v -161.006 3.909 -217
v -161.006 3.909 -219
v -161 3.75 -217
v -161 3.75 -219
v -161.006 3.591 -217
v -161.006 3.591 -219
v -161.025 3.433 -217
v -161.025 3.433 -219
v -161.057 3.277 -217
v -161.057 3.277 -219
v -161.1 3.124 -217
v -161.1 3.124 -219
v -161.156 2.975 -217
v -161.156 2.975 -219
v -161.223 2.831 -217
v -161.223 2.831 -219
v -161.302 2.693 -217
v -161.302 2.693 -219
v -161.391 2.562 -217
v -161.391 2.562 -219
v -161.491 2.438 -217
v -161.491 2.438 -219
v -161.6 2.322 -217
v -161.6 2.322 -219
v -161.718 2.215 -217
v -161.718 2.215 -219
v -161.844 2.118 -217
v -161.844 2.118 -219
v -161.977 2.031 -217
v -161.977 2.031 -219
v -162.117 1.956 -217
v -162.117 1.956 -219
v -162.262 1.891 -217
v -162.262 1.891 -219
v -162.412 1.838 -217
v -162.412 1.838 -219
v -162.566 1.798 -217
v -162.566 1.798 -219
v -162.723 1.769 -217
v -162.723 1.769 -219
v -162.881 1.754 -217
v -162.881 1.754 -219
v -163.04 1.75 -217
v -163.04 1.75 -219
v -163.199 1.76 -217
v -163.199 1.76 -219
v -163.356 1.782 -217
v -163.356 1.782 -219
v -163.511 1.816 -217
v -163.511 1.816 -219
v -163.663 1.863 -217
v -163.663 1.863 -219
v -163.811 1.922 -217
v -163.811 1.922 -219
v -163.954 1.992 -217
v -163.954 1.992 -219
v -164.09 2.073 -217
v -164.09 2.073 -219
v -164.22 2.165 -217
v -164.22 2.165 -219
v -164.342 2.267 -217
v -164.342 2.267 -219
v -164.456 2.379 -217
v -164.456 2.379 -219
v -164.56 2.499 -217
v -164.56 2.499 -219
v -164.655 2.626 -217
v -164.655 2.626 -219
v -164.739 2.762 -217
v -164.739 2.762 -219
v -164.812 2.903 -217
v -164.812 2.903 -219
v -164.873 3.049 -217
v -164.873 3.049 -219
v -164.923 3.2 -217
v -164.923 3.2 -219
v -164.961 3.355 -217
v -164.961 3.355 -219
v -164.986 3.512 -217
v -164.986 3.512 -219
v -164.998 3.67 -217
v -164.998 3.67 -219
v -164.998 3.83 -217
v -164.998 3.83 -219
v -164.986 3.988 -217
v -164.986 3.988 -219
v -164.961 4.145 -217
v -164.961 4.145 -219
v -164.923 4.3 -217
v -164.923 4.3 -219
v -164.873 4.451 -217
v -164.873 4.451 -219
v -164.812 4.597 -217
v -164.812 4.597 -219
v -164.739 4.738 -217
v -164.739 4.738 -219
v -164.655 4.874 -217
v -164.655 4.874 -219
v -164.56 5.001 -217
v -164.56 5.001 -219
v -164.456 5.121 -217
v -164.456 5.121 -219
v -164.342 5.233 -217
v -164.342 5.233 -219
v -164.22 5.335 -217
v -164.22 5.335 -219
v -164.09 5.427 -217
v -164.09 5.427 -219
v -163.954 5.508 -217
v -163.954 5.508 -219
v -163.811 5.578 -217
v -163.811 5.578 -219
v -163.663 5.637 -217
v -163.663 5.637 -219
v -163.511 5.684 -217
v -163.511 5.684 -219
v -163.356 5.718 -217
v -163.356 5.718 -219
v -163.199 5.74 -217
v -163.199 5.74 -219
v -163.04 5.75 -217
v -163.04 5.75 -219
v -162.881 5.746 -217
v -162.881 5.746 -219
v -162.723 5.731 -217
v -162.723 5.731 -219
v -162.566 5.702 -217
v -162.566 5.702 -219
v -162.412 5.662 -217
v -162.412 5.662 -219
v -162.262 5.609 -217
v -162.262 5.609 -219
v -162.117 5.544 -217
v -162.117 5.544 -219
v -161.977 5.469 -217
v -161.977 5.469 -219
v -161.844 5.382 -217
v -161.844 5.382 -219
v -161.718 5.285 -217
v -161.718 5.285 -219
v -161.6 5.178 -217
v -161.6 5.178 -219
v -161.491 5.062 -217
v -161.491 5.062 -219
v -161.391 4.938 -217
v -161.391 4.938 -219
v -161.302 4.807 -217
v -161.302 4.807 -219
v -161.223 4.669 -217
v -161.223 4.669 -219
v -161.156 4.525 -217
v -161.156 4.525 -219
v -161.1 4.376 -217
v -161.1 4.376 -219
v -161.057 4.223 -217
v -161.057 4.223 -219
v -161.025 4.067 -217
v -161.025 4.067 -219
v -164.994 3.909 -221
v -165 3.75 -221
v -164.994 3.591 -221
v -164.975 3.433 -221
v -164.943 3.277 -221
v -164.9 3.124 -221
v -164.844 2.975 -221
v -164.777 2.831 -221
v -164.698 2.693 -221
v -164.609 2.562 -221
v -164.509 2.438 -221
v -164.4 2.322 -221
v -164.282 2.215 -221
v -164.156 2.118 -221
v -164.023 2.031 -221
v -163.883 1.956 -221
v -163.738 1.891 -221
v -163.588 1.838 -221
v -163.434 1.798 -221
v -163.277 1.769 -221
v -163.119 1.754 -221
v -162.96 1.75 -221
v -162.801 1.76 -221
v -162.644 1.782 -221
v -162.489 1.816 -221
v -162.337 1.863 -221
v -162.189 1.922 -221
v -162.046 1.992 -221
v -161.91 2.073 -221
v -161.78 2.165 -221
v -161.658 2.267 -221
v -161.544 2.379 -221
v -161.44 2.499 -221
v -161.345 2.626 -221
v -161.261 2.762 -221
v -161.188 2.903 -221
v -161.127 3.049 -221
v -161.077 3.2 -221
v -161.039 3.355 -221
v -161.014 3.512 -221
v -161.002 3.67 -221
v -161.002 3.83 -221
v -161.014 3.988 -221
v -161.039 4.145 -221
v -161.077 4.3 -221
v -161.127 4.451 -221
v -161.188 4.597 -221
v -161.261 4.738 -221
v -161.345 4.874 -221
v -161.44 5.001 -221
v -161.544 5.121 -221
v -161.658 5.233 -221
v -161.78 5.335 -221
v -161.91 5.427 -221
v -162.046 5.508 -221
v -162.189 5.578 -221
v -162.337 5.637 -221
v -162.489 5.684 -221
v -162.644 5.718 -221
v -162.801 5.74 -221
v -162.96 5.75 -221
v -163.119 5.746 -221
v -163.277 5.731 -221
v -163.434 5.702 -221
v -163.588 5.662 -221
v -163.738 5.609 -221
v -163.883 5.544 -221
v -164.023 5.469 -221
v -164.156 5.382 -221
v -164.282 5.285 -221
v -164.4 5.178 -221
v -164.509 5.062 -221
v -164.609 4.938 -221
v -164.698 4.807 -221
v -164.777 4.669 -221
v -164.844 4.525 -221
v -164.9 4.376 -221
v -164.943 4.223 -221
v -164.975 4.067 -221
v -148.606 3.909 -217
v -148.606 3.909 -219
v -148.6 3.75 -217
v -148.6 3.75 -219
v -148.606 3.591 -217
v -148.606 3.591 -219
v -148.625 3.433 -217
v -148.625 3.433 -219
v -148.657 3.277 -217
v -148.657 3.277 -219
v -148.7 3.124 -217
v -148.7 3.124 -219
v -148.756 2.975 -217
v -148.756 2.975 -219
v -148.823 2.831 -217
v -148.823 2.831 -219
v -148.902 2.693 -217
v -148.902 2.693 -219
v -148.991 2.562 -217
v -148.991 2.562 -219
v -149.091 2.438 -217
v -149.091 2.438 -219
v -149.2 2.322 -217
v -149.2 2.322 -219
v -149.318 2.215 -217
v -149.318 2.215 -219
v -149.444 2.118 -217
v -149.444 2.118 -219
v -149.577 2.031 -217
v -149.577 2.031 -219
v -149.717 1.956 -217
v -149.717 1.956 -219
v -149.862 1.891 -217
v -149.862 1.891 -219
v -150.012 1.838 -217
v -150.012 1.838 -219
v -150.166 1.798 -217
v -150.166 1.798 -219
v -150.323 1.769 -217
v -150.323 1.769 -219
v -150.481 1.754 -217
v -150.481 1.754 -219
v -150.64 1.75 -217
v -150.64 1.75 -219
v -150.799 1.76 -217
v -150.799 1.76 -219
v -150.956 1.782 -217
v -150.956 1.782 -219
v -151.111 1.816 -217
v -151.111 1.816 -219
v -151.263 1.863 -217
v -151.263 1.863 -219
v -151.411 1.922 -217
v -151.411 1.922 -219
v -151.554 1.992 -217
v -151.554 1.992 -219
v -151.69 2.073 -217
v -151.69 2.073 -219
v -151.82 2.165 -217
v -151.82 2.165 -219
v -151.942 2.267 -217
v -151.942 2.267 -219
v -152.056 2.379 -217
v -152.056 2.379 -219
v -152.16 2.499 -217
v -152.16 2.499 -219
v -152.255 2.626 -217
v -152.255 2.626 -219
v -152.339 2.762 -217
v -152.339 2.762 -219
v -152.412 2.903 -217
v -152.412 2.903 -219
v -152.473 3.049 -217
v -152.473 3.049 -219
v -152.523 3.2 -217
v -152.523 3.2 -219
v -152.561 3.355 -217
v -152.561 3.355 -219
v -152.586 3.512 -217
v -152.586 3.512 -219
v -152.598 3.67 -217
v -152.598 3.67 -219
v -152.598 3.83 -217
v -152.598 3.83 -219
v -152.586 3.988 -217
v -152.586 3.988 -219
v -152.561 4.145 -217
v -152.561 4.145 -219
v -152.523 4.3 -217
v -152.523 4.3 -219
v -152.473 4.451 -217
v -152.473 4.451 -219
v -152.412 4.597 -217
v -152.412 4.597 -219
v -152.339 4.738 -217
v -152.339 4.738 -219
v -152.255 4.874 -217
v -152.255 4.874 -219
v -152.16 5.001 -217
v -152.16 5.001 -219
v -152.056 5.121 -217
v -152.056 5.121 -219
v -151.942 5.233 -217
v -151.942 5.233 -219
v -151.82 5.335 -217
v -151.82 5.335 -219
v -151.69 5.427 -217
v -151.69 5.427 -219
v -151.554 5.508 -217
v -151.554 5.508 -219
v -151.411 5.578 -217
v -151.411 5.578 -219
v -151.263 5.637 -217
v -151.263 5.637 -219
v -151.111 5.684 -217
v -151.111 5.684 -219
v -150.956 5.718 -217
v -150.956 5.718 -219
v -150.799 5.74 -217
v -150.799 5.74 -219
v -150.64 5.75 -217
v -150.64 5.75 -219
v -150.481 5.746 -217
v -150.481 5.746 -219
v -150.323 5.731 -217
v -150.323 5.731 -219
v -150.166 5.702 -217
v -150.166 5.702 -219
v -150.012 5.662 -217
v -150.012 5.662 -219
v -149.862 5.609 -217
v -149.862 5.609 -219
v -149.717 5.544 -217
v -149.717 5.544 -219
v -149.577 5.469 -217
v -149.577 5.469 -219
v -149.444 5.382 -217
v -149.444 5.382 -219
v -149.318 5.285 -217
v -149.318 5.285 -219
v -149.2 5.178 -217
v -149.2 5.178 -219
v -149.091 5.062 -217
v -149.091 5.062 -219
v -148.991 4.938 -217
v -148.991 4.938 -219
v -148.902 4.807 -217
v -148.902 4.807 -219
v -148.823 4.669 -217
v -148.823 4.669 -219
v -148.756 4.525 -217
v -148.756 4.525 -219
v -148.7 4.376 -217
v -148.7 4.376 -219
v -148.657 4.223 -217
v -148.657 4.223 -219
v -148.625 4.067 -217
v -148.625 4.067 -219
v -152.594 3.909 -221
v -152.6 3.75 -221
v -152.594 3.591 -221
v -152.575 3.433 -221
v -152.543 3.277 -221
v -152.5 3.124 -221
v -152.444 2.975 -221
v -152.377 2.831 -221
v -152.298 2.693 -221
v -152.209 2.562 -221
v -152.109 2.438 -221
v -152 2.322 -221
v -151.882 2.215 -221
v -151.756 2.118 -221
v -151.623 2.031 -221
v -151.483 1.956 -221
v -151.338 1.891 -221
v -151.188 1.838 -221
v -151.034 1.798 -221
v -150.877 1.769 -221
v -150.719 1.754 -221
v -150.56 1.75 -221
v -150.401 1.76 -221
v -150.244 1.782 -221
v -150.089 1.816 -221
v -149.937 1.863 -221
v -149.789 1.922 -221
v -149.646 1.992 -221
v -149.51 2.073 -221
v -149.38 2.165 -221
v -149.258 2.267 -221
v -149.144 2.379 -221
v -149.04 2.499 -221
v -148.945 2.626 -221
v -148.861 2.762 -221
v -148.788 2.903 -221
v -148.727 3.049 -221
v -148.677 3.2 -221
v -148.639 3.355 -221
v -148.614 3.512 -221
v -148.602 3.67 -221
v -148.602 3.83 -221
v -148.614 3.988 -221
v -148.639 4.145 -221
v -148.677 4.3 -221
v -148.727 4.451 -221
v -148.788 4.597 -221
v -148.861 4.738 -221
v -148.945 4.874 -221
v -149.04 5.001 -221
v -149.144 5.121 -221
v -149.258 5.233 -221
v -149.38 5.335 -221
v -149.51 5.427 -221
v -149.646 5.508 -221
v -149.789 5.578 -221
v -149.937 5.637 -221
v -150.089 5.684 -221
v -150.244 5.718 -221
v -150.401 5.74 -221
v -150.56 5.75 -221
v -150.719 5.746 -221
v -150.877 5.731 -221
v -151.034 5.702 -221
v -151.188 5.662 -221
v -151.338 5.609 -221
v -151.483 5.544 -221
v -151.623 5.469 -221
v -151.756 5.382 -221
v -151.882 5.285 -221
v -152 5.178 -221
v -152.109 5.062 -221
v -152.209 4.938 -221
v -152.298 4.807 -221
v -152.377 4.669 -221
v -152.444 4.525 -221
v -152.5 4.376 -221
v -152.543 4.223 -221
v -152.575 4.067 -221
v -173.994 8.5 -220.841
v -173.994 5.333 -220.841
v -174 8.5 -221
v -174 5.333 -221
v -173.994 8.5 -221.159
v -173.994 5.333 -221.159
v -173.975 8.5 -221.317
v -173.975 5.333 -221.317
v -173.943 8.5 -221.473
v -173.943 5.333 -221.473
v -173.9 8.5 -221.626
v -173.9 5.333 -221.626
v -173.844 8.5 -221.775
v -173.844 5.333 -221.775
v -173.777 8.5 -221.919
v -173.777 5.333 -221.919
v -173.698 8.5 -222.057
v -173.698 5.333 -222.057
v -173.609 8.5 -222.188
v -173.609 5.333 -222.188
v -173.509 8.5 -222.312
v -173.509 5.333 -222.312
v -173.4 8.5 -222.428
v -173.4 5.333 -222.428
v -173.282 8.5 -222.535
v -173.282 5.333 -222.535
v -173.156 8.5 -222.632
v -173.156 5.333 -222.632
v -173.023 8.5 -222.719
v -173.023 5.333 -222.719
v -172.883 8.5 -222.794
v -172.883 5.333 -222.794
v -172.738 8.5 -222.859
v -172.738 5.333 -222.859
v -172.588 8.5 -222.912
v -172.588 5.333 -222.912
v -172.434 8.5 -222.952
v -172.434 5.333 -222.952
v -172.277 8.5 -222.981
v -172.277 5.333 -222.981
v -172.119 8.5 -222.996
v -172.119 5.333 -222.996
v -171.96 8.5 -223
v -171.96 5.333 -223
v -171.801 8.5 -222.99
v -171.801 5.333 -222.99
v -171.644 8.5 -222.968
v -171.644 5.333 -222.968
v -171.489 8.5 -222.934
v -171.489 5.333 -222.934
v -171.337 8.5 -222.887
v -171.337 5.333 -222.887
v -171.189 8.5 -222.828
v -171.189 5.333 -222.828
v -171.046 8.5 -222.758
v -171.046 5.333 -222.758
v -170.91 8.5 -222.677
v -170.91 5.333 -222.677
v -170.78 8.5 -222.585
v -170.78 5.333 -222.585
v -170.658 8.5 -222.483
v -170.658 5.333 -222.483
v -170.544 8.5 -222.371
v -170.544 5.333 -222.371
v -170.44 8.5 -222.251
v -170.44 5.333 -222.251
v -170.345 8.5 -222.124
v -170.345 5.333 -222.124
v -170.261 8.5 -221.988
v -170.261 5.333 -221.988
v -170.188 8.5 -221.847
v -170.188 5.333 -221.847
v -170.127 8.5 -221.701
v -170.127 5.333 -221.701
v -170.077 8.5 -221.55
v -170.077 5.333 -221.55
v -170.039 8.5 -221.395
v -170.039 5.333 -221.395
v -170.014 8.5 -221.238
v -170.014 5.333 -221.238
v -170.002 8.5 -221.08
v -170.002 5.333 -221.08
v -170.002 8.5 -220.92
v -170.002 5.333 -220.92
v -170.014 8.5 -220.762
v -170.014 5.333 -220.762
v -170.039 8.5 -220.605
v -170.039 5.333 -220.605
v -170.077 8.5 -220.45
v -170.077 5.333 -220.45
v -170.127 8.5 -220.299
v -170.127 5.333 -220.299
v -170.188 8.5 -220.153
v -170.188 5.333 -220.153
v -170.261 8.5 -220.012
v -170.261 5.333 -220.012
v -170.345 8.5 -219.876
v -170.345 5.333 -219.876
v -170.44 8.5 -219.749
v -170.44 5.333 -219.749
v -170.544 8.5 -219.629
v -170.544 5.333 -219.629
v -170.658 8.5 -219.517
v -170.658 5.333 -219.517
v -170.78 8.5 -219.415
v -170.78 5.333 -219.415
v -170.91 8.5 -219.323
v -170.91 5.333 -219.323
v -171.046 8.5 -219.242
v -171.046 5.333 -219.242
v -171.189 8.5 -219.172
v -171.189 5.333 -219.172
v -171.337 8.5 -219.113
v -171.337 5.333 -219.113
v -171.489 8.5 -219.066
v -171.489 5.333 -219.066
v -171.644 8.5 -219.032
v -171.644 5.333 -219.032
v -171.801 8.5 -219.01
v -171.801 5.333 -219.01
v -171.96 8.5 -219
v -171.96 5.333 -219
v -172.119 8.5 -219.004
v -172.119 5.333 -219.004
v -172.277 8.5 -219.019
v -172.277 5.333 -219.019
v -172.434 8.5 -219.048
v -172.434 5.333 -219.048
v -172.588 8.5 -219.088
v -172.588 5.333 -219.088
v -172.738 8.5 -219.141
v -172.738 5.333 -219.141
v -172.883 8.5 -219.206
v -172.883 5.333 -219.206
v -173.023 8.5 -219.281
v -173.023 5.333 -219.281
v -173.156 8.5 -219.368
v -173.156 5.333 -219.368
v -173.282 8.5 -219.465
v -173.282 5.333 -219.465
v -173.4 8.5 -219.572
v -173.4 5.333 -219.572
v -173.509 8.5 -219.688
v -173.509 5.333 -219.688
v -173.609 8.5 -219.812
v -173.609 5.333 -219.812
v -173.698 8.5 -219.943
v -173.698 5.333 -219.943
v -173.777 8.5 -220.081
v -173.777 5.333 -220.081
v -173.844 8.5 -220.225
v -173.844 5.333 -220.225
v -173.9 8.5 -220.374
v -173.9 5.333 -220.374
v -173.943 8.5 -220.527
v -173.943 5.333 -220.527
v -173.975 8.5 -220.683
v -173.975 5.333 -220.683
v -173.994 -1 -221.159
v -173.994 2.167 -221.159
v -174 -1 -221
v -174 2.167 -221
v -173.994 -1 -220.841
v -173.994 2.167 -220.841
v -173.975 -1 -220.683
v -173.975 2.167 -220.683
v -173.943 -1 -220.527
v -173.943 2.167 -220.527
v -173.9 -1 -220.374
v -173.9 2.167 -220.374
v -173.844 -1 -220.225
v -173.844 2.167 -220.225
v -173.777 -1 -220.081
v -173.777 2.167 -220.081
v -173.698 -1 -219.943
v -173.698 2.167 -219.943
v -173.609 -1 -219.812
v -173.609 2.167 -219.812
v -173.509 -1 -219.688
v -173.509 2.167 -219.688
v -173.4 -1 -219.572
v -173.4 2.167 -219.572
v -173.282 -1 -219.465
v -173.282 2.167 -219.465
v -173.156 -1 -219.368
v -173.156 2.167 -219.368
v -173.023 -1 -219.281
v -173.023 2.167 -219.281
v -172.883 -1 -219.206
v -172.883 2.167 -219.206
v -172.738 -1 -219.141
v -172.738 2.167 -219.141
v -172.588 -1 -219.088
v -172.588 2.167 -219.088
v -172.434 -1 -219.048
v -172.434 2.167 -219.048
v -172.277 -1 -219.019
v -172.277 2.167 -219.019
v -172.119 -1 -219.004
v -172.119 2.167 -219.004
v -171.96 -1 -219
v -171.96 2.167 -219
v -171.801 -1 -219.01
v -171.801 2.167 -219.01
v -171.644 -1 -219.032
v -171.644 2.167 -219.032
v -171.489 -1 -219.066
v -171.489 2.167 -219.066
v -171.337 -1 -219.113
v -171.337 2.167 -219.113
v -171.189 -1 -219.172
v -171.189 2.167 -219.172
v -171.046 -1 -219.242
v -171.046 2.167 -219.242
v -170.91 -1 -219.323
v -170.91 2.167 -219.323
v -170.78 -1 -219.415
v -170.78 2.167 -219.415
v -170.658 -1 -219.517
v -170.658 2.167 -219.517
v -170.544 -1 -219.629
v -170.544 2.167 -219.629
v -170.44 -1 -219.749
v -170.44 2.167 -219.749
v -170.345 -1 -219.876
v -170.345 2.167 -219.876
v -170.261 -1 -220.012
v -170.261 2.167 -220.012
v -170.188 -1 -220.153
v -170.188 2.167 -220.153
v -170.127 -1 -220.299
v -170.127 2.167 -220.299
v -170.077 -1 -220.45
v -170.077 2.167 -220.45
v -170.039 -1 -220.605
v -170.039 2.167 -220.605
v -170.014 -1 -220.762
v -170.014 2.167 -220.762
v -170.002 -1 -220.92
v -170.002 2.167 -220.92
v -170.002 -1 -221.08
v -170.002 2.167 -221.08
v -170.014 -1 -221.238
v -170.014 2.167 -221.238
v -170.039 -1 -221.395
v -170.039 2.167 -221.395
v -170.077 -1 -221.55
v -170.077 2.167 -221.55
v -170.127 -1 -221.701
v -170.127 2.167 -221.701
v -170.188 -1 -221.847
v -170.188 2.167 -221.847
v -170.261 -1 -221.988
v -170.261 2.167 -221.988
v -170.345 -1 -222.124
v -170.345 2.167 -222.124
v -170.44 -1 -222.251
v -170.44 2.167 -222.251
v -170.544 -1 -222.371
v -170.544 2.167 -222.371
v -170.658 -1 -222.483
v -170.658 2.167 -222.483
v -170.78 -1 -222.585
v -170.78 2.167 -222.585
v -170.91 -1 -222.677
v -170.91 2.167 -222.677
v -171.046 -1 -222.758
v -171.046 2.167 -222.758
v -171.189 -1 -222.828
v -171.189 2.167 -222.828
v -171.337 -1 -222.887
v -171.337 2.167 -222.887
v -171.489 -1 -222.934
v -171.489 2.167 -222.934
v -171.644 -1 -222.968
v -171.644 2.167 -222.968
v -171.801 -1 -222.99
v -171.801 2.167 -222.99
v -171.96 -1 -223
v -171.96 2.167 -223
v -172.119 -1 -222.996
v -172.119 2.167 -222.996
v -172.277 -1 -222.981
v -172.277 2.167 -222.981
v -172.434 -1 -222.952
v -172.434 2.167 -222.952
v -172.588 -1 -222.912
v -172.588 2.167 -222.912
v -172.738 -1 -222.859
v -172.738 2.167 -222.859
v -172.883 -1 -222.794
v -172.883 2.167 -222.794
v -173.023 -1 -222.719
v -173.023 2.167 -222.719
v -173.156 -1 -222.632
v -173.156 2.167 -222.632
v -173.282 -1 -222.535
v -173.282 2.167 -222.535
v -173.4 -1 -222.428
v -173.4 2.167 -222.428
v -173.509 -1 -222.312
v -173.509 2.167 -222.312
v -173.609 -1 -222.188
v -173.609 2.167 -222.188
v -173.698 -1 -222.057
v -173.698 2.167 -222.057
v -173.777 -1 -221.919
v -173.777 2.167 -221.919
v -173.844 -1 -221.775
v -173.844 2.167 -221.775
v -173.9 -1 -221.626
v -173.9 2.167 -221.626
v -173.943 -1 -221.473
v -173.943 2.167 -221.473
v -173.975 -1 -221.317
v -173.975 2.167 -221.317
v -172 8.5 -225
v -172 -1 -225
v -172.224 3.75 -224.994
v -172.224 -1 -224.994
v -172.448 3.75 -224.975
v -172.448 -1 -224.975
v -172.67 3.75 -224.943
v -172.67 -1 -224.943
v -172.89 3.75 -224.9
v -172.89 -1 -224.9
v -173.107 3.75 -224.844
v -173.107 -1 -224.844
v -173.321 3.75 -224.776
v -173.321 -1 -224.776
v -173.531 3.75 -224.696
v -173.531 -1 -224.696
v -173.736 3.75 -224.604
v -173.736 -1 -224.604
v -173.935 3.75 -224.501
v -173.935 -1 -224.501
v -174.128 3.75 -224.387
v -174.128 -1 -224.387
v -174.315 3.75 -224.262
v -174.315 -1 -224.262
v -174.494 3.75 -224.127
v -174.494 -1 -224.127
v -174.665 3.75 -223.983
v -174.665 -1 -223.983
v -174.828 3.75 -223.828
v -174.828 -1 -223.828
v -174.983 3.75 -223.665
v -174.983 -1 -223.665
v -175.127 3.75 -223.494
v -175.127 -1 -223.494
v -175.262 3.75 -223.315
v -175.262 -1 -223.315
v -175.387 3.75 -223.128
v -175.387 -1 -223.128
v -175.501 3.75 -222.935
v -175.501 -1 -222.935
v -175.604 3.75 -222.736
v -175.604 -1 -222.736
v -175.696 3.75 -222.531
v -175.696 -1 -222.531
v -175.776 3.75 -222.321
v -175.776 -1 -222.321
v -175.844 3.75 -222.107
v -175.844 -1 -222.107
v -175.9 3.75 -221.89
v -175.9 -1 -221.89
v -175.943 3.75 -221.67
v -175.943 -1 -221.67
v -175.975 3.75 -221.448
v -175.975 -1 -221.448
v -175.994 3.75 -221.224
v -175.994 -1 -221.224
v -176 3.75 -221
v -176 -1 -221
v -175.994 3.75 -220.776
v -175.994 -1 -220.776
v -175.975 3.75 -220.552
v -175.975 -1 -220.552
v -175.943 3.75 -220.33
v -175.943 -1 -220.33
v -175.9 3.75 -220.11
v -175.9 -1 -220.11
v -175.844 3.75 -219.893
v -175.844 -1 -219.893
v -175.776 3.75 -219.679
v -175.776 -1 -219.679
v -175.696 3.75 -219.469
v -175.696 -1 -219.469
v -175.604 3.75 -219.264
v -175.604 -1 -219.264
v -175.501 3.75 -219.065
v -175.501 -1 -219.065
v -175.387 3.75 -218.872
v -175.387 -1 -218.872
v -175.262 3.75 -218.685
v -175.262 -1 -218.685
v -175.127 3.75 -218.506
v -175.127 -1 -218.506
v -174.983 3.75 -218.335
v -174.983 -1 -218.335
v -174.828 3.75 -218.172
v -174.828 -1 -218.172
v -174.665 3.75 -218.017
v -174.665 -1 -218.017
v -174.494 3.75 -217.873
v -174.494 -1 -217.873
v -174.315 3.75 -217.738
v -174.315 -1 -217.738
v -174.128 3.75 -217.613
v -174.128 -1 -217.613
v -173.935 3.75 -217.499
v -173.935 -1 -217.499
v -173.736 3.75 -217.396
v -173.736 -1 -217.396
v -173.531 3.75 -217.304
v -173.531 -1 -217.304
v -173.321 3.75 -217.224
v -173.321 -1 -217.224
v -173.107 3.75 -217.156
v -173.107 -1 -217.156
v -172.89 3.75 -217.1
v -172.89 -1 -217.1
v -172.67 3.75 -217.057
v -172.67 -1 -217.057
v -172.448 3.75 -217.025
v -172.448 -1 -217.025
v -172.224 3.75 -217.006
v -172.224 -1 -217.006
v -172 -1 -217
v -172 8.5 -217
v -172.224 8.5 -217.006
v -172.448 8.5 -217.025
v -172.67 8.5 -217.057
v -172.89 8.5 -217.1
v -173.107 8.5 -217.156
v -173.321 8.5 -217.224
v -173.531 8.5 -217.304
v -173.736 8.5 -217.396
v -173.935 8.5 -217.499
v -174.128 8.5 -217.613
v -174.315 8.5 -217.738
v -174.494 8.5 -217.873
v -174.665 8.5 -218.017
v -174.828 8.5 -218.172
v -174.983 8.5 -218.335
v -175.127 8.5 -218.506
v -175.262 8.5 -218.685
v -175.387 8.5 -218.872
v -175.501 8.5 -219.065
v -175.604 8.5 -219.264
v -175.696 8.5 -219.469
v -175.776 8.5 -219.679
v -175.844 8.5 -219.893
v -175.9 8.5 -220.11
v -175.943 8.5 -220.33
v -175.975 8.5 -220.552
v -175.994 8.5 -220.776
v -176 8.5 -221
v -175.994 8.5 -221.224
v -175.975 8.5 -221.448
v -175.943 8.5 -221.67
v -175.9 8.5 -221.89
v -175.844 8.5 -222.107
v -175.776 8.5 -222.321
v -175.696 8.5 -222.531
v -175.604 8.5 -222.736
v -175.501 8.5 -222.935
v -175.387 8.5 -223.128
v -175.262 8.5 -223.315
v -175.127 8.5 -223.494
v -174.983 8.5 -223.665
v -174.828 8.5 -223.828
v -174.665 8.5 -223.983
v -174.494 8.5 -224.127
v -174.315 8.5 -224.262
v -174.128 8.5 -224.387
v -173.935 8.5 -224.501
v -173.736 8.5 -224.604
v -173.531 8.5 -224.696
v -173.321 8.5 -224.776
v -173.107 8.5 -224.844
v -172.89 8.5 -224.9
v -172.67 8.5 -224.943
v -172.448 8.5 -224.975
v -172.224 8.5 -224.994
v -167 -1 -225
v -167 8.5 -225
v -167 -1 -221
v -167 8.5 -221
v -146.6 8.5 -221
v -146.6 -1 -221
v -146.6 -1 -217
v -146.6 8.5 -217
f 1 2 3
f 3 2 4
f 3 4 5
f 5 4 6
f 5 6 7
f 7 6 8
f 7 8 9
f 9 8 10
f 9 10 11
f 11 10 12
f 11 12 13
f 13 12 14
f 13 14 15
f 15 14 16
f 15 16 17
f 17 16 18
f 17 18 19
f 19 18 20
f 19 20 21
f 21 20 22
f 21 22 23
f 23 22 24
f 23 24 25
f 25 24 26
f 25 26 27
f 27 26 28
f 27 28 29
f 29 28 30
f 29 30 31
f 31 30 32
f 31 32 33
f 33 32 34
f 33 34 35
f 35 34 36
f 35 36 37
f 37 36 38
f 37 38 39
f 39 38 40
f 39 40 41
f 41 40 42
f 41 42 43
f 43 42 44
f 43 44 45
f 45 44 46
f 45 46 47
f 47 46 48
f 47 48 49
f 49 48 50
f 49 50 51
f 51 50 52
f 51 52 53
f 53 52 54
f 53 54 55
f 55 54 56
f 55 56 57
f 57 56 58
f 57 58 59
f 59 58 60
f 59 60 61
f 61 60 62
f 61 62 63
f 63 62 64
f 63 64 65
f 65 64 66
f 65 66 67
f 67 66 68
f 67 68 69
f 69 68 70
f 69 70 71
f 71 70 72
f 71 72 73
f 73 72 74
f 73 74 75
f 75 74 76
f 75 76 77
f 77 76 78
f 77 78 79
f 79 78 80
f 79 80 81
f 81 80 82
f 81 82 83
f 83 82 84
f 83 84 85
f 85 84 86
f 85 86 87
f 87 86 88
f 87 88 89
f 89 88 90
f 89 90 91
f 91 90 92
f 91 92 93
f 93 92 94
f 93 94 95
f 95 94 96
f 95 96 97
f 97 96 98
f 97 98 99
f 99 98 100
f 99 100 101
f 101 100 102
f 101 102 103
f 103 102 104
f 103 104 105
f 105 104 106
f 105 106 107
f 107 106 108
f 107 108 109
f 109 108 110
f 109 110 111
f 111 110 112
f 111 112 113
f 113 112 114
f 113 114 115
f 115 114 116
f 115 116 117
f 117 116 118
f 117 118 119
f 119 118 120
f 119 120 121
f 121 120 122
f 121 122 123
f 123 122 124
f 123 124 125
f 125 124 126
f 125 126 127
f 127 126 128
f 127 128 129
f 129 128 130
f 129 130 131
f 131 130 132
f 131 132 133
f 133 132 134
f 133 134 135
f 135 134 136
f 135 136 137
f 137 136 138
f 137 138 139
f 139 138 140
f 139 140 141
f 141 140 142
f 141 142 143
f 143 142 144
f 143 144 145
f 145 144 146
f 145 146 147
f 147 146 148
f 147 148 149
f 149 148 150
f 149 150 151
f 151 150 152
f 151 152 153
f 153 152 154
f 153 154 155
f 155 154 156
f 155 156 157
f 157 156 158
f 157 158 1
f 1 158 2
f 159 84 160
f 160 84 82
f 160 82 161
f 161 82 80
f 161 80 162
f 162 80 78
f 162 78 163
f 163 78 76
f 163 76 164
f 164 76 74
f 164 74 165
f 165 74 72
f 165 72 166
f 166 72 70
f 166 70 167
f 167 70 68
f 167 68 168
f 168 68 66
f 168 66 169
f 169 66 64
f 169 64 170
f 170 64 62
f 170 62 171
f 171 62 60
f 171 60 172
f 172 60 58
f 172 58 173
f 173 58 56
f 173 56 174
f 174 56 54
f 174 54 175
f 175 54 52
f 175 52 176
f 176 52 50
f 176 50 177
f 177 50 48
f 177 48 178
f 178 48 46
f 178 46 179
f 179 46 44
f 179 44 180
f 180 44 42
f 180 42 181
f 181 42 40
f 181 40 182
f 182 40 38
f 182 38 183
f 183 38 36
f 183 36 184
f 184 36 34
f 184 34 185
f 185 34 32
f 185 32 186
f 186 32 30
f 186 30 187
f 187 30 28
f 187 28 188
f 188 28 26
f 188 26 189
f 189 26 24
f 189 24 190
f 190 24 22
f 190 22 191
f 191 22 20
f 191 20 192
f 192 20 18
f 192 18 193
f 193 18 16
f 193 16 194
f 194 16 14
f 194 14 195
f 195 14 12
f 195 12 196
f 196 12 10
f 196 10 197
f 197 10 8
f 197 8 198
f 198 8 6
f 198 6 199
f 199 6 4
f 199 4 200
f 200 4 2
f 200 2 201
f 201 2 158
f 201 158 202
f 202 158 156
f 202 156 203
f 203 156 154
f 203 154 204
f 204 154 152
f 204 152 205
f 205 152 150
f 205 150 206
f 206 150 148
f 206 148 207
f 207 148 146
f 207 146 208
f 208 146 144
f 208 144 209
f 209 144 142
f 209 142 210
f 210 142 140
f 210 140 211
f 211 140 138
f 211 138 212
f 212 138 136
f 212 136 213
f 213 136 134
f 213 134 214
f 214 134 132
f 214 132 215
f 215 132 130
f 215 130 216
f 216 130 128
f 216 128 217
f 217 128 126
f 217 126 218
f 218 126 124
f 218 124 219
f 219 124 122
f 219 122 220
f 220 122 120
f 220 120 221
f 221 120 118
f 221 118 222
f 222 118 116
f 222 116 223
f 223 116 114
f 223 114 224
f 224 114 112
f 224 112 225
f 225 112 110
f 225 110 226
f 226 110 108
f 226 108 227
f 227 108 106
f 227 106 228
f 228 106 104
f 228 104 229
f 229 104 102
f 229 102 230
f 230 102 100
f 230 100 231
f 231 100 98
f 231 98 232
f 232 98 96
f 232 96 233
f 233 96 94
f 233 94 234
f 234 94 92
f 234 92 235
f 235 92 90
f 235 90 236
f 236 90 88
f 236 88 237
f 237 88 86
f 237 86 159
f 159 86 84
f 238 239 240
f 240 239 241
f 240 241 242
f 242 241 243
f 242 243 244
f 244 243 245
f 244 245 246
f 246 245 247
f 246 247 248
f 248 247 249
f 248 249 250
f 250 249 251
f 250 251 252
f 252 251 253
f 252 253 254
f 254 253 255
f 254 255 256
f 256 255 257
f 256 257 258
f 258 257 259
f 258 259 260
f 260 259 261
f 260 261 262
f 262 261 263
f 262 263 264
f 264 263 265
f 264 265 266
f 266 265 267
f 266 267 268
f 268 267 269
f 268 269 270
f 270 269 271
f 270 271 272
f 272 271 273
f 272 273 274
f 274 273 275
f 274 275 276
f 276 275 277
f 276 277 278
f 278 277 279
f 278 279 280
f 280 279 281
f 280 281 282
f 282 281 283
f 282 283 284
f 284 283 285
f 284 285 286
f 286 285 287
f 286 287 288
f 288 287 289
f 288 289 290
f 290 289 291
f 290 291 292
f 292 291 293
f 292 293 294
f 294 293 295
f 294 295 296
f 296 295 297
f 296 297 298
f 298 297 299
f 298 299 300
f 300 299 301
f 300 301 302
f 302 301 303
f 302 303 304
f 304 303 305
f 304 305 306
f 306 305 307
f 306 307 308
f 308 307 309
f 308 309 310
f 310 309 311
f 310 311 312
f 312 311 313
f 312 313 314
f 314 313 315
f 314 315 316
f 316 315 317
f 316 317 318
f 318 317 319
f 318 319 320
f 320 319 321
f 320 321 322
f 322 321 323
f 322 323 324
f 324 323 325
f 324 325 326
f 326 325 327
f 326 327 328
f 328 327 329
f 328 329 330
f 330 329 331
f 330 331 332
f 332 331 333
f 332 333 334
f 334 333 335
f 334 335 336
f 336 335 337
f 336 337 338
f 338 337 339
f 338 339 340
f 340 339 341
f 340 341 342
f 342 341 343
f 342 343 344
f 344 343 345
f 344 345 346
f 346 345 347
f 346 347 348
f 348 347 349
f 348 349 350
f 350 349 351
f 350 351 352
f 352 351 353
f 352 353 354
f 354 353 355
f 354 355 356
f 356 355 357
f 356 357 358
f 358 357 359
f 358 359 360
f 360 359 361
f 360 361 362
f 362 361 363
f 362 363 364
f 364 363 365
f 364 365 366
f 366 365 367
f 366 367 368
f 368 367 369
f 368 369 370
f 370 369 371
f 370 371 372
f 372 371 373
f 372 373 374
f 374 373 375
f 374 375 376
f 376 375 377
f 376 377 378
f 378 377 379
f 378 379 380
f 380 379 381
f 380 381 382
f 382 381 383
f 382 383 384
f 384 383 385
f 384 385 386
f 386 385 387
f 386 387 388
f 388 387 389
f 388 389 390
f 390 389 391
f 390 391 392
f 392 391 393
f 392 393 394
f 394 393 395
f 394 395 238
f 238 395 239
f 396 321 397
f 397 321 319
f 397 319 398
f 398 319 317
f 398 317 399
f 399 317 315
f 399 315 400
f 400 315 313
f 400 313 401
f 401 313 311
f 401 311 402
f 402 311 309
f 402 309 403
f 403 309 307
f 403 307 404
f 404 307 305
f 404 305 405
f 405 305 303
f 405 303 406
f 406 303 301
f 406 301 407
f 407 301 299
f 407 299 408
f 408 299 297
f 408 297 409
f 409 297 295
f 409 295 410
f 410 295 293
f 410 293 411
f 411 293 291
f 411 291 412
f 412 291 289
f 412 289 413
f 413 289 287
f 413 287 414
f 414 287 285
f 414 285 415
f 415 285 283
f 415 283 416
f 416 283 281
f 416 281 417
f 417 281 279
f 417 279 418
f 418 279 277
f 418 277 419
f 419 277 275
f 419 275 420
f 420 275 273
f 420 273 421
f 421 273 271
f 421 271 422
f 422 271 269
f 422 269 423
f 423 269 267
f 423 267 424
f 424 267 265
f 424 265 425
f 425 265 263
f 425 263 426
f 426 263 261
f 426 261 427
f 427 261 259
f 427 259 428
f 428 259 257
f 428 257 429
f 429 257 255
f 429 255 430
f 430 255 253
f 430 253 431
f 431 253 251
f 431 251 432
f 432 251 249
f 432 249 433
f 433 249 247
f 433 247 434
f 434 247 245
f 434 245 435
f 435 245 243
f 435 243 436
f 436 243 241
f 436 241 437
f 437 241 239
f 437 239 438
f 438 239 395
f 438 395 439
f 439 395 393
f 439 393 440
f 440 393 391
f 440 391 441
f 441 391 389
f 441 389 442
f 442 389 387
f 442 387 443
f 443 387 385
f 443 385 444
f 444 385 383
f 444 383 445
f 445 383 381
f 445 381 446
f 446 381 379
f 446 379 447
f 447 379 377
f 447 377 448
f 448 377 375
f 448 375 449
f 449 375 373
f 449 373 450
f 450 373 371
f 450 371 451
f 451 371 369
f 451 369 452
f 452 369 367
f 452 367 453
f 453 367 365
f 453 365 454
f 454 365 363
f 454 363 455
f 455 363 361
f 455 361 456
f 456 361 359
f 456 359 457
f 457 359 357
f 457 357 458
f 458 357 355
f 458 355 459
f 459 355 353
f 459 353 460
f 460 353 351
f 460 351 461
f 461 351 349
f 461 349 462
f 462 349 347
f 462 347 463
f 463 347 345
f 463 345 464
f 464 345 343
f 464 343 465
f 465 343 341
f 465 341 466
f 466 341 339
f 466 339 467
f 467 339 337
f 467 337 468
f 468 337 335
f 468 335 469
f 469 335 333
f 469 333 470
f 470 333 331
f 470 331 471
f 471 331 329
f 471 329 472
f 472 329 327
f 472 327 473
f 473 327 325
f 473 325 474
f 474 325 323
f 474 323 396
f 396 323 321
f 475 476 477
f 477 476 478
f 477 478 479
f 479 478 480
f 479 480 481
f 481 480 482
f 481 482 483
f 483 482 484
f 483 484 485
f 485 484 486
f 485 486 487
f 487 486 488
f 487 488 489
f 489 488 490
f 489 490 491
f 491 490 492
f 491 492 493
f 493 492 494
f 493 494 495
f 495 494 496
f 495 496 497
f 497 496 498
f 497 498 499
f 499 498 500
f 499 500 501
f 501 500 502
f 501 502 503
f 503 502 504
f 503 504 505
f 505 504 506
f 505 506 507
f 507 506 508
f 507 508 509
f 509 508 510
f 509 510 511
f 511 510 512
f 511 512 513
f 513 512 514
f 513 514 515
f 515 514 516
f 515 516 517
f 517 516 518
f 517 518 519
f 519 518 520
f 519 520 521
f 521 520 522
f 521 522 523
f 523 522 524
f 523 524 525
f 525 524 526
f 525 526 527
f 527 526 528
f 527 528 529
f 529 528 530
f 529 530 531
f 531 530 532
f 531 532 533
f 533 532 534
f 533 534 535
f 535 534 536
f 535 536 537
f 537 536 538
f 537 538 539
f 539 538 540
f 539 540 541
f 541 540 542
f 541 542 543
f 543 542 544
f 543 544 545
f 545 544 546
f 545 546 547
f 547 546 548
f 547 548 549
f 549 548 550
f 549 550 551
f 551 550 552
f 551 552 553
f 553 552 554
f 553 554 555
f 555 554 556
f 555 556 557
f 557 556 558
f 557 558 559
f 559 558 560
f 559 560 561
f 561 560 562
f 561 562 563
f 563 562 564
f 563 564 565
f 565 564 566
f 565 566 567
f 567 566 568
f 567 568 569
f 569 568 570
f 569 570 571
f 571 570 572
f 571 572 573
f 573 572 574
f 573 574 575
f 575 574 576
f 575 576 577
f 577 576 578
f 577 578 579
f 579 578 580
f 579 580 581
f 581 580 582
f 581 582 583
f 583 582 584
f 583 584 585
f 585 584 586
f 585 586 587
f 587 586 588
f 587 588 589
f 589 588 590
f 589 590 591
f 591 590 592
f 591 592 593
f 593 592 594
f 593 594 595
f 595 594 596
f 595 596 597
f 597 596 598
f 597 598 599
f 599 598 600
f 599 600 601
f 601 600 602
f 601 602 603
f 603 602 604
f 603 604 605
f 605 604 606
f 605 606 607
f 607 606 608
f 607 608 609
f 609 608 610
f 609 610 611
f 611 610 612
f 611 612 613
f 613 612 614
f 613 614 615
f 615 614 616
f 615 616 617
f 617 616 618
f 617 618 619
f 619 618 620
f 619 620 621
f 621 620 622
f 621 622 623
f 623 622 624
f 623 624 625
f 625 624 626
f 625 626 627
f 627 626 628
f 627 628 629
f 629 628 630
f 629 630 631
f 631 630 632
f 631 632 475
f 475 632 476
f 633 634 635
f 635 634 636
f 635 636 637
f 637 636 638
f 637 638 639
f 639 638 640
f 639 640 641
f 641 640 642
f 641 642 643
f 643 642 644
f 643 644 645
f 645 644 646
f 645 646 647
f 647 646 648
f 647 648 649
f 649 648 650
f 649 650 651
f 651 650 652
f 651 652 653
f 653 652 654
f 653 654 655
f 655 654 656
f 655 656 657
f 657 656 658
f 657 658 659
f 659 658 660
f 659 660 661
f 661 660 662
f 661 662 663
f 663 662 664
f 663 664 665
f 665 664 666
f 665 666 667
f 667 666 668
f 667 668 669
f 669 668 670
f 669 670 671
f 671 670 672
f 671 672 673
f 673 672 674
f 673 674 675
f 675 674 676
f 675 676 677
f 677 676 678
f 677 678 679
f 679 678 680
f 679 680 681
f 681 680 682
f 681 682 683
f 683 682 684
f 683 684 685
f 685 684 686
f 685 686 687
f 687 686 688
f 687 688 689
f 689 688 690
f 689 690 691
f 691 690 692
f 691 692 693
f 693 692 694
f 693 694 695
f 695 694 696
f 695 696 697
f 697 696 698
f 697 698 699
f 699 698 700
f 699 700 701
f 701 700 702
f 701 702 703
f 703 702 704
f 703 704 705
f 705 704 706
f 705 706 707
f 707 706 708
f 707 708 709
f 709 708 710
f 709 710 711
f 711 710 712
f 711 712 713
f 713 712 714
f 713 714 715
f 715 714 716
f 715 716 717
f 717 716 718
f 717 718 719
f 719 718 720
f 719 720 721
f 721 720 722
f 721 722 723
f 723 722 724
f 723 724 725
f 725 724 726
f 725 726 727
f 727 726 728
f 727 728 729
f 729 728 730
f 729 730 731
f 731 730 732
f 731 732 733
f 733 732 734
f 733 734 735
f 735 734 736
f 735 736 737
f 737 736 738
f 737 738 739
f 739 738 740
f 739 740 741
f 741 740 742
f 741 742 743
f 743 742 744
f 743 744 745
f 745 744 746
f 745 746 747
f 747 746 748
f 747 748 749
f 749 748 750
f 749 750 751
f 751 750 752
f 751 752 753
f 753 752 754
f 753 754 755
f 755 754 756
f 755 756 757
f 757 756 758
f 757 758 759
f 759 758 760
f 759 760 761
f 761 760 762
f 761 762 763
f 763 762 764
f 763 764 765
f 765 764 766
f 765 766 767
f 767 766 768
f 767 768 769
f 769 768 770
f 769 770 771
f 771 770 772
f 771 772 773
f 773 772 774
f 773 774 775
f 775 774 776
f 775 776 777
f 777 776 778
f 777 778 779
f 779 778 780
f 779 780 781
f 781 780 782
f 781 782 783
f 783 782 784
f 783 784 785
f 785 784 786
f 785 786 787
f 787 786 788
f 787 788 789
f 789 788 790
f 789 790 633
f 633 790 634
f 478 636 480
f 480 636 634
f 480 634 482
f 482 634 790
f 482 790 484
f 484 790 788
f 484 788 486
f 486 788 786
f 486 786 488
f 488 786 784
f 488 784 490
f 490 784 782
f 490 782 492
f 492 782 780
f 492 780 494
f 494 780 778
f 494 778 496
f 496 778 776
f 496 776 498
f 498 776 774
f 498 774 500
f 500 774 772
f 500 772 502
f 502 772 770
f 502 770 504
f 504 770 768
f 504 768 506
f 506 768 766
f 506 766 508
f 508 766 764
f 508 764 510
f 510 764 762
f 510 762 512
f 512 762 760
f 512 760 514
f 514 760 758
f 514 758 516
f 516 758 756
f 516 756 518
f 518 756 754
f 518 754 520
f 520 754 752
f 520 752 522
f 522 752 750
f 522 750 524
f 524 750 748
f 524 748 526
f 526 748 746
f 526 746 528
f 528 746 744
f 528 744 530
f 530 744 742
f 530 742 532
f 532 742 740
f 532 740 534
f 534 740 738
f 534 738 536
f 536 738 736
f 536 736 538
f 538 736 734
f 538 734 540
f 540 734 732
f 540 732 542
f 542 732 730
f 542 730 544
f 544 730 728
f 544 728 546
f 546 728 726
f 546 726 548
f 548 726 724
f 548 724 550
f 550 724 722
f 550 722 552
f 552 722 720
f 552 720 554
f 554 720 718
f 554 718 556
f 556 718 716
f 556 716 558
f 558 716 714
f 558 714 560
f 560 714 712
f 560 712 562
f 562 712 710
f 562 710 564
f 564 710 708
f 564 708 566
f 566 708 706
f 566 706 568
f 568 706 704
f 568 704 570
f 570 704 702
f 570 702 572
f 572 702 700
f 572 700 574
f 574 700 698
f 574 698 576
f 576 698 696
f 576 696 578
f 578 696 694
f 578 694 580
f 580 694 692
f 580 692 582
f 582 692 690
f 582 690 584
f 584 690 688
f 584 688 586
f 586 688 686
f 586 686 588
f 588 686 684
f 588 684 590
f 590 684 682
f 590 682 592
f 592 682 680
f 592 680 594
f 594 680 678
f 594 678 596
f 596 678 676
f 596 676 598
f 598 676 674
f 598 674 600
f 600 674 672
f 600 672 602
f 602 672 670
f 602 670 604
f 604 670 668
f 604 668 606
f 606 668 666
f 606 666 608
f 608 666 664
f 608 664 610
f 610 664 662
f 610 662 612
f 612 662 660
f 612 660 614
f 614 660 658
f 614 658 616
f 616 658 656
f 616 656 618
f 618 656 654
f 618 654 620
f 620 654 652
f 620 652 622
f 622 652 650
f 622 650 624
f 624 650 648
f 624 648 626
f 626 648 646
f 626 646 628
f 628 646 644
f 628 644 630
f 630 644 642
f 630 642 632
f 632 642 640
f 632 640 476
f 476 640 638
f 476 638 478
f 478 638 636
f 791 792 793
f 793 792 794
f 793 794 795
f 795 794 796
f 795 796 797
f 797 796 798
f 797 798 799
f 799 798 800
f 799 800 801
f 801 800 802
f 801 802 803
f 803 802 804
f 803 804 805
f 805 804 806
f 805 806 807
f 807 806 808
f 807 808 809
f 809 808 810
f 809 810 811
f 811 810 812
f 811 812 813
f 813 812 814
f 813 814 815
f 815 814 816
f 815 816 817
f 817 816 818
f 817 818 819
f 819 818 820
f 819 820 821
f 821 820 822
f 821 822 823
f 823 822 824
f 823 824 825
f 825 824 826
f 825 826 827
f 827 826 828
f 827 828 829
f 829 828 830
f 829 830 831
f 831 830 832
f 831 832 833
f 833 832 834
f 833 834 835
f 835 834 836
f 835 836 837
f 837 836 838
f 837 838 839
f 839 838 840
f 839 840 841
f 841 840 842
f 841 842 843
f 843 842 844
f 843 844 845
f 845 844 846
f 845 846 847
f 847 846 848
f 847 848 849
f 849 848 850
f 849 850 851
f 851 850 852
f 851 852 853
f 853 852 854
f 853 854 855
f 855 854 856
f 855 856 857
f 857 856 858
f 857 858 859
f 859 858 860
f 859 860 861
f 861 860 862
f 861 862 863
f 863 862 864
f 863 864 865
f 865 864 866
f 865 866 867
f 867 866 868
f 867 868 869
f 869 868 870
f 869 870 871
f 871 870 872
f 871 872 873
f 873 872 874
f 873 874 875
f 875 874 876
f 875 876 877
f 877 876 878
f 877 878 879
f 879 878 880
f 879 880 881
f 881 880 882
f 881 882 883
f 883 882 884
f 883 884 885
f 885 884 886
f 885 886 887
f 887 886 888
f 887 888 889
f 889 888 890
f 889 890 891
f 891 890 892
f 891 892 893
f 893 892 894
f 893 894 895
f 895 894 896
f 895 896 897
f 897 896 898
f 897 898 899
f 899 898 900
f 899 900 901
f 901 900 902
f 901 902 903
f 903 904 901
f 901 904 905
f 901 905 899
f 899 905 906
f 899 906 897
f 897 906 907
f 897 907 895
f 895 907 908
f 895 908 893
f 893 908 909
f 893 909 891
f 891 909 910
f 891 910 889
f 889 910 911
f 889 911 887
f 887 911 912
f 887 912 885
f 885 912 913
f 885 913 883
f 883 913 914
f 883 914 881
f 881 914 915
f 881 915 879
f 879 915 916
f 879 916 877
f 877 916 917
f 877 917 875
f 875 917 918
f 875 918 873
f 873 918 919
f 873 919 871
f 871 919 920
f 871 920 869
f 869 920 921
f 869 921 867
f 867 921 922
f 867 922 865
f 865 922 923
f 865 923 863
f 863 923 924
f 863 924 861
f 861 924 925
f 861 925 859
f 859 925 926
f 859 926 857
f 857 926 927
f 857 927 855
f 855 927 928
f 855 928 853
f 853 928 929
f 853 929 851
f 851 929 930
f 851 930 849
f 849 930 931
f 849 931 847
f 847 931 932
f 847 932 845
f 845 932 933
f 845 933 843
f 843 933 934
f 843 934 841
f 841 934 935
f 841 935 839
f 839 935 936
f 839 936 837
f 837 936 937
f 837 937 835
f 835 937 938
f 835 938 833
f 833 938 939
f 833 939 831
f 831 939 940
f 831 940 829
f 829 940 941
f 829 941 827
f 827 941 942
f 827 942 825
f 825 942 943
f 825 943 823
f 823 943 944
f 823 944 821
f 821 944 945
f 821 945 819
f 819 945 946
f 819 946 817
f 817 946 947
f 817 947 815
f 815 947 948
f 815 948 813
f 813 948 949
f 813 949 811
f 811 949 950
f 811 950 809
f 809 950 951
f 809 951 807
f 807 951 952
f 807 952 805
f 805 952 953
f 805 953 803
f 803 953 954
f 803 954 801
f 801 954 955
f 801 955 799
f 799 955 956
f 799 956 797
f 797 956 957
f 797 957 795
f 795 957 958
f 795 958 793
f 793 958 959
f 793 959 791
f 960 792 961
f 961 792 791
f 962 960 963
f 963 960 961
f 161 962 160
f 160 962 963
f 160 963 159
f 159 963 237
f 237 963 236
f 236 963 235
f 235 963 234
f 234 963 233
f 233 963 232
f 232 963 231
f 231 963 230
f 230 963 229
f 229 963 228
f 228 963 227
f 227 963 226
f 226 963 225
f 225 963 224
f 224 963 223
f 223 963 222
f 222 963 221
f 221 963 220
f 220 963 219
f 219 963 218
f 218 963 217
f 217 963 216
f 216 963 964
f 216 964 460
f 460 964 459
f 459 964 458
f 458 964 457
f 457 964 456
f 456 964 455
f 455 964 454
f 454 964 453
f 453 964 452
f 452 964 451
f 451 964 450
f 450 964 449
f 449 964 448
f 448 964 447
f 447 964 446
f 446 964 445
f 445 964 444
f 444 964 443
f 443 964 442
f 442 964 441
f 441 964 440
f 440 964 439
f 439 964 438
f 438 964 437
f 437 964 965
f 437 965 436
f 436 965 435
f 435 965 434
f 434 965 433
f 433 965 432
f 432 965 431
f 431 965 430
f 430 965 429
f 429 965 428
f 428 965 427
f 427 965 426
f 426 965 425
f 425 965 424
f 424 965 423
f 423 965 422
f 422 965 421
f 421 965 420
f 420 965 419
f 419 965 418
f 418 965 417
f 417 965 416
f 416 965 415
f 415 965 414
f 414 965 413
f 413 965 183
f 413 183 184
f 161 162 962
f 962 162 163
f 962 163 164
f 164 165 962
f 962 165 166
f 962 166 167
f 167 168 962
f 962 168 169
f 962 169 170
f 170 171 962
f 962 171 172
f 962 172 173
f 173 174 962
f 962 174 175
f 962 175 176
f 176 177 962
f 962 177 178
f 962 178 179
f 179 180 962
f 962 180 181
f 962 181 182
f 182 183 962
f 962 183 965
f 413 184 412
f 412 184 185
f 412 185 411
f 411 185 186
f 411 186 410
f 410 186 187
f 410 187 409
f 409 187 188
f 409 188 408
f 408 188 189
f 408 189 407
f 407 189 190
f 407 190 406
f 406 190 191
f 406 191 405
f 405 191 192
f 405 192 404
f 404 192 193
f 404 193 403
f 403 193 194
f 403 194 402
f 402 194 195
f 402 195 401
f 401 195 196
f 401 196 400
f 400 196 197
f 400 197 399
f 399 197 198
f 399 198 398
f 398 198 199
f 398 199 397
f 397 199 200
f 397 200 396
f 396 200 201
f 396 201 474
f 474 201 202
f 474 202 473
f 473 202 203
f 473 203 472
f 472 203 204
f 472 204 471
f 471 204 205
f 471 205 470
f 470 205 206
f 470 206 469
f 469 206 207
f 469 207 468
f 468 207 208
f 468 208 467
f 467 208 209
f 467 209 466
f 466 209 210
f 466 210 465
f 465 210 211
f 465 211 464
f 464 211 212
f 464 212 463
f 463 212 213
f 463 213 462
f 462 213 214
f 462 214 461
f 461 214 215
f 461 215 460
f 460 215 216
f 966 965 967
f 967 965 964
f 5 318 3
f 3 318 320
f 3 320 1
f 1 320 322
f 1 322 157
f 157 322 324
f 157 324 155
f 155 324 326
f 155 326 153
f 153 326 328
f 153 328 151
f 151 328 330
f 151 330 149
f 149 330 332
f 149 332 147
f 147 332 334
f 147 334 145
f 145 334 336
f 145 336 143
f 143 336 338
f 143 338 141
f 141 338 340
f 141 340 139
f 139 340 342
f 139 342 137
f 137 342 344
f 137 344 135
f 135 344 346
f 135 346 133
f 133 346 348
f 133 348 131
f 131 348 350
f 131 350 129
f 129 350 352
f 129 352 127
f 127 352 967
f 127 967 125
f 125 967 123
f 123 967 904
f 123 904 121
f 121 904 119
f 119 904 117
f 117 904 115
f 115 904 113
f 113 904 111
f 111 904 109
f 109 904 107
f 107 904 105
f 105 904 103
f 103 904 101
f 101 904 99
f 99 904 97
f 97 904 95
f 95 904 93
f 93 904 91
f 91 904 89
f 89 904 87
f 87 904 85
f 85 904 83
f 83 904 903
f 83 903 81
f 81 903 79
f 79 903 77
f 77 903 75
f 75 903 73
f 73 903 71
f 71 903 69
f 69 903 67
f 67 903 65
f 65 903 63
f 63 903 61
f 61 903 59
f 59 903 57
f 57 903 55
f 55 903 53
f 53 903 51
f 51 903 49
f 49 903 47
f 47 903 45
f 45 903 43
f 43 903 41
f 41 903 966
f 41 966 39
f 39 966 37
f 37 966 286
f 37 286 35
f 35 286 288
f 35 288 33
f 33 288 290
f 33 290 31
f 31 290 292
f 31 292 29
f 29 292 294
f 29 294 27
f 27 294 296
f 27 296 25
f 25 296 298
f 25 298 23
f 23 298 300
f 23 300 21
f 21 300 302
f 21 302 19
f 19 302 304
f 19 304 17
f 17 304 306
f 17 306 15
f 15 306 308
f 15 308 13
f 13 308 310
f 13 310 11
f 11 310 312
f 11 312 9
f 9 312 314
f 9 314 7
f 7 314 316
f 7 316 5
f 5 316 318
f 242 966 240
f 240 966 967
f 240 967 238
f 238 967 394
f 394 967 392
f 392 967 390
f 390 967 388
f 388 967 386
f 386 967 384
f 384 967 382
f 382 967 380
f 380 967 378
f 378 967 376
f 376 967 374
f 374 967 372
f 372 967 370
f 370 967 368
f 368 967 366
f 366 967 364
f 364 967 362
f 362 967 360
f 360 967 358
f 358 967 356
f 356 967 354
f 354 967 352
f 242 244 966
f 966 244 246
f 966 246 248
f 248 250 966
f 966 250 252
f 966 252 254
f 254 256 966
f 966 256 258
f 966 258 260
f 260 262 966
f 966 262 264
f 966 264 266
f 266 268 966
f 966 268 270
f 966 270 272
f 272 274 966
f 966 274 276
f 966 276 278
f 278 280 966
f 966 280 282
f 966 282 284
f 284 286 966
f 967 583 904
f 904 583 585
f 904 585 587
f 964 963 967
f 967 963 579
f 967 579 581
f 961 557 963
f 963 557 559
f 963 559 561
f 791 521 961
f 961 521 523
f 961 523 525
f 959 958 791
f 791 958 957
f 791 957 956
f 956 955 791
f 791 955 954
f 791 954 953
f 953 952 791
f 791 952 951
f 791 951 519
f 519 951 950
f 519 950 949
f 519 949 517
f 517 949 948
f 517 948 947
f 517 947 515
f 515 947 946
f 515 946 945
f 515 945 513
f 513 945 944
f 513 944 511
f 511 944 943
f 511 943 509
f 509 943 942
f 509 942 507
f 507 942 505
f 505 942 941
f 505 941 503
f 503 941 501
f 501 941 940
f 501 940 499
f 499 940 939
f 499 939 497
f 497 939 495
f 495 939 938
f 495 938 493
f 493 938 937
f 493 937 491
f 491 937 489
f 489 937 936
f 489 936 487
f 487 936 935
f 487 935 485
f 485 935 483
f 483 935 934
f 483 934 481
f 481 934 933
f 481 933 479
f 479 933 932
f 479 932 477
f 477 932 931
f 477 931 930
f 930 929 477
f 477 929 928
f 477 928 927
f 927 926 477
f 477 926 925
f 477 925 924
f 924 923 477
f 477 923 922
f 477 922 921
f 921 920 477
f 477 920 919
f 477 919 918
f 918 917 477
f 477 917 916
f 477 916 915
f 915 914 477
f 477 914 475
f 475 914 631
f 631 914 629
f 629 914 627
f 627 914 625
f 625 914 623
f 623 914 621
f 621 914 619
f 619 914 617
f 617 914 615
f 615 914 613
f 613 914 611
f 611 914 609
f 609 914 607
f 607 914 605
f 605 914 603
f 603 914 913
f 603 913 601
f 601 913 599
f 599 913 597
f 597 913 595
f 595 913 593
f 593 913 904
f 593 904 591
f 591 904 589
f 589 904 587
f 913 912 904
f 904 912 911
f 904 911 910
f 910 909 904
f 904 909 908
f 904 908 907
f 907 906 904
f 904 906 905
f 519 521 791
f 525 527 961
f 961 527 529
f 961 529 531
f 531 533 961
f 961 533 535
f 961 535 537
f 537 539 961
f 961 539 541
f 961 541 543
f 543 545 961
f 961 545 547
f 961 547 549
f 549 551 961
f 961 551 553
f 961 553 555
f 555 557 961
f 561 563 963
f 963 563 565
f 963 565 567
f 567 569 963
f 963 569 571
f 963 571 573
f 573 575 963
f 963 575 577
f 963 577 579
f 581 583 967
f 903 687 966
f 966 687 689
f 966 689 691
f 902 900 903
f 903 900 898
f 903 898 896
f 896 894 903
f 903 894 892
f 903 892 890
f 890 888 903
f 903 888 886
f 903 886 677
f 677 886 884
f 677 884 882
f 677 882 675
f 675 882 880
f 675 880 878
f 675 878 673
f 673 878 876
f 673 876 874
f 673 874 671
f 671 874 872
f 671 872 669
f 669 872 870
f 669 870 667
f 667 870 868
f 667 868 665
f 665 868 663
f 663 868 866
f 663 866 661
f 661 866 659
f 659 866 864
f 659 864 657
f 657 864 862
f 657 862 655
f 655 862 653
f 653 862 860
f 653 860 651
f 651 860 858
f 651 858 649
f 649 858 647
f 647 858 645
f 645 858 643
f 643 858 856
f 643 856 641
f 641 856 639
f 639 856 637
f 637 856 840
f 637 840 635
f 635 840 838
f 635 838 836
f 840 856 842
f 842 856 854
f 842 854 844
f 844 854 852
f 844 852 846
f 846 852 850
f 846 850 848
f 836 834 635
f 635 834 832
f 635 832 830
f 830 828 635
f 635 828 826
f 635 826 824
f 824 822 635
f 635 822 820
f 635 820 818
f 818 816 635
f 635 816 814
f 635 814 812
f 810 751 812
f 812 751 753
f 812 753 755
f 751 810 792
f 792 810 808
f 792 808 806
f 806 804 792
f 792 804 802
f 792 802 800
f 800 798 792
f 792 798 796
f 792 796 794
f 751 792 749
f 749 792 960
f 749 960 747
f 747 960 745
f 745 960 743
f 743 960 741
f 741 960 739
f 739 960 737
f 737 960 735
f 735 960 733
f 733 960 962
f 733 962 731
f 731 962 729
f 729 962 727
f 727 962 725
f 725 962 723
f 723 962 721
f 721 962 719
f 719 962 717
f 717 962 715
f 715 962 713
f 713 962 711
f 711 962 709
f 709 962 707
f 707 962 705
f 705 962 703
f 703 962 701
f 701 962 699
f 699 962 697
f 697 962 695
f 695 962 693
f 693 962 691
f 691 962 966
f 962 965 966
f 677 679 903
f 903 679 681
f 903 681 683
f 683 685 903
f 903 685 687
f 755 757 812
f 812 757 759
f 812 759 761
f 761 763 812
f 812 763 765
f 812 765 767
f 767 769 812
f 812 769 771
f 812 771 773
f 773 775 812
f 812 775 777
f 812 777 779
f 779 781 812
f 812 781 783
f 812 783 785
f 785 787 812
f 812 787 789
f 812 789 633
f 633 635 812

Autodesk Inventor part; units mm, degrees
ref_plane "YZ Plane" through (0, 0, 0) normal (1, 0, 0) x (0, 1, 0)
ref_plane "XZ Plane" through (0, 0, 0) normal (0, 1, 0) x (-1, 0, 0)
ref_plane "XY Plane" through (0, 0, 0) normal (0, 0, 1) x (1, 0, 0)
ref_plane "Work Plane1" through (-181, -1, -216) normal (0, 1, 0) x (-1, 0, 0)
sketch "Sketch1" plane through (-181, -1, -216) normal (0, 1, 0) x (-1, 0, 0)
  circle A0 centre (-9, -5) radius 2 projected
  arc A1 (-18, -6.825) -> (-14.825, -10) centre (-14.825, -6.825) ccw projected
  line L0 (-3.175, -10) -> (-14.825, -10) projected
  arc A2 (-3.175, -10) -> (0, -6.825) centre (-3.175, -6.825) ccw projected
  line L1 (0, -3.175) -> (0, -6.825) projected
  arc A3 (3.175, 0) -> (0, -3.175) centre (3.175, -3.175) ccw projected
  line L2 (-21.175, 0) -> (3.175, 0) projected
  arc A4 (-18, -3.175) -> (-21.175, 0) centre (-21.175, -3.175) ccw projected
  line L3 (-18, -3.175) -> (-18, -6.825) projected
  circle A5 centre (-9, -5) radius 5
  circle A6 centre (-9, -5) radius 4
  line L4 (-9, -1) -> (-34.4, -1)
  line L5 (-34.4, -1) -> (-34.4, -5)
  line L6 (-34.4, -5) -> (-14, -5)
  line L7 (-14, -5) -> (-14, -9)
  line L8 (-14, -9) -> (-9, -9)
  point P0 (-181, 216)
  dimension "d0" = 1
  dimension "d1" = 5
  dimension "d2" = 25.4
extrude "Extrusion1" add sketch "Sketch1" along normal blind 9.5 contours L6 L5 L4 A4 L3 | L3 A4 L4 A5 L6 | A5 L4 A6 L8 | A5 L8 L7 | A6 picked at (-12.1637, -8.3993)
sketch "Sketch2" plane through (-146.6, -1, -221) normal (0, 0, -1) x (-1, 0, 0)
  line L0 (0, 0) -> (20.4, 0) projected
  line L1 (20.4, 0) -> (20.4, 9.5) projected
  line L2 (0, 9.5) -> (20.4, 9.5) projected
  line L3 (0, 0) -> (0, 9.5) projected
  circle A0 centre (4, 4.75) radius 2
  circle A1 centre (16.4, 4.75) radius 2
  point P0 (-146.6, 1)
  dimension "d5" = 4
  dimension "d6" = 4
  dimension "d7" = 4
  dimension "d8" = 4
  dimension "d9" = 4.75
  dimension "d10" = 4.75
extrude "Extrusion2" cut sketch "Sketch2" against normal blind 9.5 contours A0 | A1
properties part number "flappythingadaptor"
